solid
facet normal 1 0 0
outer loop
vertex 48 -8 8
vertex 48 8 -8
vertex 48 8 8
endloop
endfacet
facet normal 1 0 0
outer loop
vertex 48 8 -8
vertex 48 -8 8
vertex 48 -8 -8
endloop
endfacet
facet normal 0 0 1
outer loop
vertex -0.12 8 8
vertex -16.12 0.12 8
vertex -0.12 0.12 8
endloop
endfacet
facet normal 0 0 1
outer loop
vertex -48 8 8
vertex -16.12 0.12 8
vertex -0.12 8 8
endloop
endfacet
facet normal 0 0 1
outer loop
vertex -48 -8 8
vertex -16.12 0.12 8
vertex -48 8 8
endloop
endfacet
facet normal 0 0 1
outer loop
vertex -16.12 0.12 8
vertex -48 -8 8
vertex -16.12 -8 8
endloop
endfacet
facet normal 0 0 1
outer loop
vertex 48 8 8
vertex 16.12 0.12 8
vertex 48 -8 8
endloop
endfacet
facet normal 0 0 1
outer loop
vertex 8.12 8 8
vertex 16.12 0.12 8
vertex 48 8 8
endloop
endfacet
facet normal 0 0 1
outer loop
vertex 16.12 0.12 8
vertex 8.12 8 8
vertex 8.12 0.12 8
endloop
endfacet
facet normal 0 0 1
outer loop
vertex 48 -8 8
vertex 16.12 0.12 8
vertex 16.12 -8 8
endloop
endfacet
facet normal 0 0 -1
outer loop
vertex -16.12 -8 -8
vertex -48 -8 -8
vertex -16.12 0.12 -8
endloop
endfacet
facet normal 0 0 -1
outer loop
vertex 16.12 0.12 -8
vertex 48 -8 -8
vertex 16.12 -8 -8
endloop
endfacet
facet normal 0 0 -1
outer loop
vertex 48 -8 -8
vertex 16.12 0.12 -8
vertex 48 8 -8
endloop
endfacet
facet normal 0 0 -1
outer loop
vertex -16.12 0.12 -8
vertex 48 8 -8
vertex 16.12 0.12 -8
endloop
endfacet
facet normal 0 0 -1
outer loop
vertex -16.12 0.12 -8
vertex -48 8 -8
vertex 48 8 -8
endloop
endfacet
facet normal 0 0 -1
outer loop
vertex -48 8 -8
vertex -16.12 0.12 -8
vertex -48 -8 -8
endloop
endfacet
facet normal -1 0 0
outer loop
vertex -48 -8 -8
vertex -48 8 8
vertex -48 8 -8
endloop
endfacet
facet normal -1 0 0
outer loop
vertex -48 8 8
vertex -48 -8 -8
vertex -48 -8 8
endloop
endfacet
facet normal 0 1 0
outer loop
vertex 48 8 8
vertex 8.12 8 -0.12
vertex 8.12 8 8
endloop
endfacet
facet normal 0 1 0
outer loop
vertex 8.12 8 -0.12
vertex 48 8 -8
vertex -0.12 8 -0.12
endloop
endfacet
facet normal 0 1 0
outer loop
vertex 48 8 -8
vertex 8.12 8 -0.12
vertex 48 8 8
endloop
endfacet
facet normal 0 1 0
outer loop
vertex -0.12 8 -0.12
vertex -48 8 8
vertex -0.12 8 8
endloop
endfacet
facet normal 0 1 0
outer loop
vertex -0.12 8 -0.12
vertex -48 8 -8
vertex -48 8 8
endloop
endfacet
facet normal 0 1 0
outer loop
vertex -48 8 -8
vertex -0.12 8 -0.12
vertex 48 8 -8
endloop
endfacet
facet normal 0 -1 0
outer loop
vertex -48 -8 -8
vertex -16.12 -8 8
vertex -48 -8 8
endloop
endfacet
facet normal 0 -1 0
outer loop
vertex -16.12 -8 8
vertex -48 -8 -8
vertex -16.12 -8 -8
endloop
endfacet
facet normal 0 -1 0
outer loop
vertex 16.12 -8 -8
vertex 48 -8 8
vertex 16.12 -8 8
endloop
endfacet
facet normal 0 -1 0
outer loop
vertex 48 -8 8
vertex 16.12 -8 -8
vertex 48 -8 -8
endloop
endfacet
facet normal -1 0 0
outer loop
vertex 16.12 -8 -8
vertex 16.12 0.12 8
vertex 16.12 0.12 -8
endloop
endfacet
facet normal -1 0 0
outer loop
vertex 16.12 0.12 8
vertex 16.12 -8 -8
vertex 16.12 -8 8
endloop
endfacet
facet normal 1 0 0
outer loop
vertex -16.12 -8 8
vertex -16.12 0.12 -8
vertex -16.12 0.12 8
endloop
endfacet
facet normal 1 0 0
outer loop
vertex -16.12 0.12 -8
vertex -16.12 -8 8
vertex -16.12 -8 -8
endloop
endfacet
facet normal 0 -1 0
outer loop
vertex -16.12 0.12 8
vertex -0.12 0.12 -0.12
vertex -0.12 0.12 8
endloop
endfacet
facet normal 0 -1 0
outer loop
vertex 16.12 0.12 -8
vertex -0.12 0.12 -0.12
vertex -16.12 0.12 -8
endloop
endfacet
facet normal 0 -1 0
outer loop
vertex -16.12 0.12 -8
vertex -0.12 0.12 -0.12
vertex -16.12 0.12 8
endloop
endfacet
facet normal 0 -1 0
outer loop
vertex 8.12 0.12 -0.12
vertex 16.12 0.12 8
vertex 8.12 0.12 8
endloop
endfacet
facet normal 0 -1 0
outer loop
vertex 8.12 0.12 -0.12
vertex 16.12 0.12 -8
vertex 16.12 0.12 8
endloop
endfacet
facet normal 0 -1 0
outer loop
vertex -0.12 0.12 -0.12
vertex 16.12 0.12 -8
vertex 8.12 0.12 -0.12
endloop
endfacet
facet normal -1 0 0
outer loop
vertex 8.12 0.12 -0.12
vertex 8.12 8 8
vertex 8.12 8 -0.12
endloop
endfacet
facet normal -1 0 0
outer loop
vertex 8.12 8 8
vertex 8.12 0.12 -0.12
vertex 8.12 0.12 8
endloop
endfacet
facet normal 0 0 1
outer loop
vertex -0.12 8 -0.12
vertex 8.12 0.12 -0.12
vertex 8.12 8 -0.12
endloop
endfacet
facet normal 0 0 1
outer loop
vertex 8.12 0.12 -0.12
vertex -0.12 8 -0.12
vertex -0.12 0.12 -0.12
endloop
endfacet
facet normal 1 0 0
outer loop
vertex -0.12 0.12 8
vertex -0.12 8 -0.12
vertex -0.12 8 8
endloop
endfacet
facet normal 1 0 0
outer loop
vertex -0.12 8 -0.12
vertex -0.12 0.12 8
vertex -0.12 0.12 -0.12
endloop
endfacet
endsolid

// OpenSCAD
measure = 8;
dd = 0.12/measure; 

scale([measure,measure,measure]) difference() {
    cube(size = [12,2,2], center = true);
    translate([0,-0.5,0]) 
        cube(size = [4 + 2*dd, 1 + 2*dd, 2 + 2*dd], center=true);
    translate([0.5,0.5,0.5]) 
        cube(size=[1 + 2*dd, 1 + 2*dd, 1 + 2*dd], center=true);
}
